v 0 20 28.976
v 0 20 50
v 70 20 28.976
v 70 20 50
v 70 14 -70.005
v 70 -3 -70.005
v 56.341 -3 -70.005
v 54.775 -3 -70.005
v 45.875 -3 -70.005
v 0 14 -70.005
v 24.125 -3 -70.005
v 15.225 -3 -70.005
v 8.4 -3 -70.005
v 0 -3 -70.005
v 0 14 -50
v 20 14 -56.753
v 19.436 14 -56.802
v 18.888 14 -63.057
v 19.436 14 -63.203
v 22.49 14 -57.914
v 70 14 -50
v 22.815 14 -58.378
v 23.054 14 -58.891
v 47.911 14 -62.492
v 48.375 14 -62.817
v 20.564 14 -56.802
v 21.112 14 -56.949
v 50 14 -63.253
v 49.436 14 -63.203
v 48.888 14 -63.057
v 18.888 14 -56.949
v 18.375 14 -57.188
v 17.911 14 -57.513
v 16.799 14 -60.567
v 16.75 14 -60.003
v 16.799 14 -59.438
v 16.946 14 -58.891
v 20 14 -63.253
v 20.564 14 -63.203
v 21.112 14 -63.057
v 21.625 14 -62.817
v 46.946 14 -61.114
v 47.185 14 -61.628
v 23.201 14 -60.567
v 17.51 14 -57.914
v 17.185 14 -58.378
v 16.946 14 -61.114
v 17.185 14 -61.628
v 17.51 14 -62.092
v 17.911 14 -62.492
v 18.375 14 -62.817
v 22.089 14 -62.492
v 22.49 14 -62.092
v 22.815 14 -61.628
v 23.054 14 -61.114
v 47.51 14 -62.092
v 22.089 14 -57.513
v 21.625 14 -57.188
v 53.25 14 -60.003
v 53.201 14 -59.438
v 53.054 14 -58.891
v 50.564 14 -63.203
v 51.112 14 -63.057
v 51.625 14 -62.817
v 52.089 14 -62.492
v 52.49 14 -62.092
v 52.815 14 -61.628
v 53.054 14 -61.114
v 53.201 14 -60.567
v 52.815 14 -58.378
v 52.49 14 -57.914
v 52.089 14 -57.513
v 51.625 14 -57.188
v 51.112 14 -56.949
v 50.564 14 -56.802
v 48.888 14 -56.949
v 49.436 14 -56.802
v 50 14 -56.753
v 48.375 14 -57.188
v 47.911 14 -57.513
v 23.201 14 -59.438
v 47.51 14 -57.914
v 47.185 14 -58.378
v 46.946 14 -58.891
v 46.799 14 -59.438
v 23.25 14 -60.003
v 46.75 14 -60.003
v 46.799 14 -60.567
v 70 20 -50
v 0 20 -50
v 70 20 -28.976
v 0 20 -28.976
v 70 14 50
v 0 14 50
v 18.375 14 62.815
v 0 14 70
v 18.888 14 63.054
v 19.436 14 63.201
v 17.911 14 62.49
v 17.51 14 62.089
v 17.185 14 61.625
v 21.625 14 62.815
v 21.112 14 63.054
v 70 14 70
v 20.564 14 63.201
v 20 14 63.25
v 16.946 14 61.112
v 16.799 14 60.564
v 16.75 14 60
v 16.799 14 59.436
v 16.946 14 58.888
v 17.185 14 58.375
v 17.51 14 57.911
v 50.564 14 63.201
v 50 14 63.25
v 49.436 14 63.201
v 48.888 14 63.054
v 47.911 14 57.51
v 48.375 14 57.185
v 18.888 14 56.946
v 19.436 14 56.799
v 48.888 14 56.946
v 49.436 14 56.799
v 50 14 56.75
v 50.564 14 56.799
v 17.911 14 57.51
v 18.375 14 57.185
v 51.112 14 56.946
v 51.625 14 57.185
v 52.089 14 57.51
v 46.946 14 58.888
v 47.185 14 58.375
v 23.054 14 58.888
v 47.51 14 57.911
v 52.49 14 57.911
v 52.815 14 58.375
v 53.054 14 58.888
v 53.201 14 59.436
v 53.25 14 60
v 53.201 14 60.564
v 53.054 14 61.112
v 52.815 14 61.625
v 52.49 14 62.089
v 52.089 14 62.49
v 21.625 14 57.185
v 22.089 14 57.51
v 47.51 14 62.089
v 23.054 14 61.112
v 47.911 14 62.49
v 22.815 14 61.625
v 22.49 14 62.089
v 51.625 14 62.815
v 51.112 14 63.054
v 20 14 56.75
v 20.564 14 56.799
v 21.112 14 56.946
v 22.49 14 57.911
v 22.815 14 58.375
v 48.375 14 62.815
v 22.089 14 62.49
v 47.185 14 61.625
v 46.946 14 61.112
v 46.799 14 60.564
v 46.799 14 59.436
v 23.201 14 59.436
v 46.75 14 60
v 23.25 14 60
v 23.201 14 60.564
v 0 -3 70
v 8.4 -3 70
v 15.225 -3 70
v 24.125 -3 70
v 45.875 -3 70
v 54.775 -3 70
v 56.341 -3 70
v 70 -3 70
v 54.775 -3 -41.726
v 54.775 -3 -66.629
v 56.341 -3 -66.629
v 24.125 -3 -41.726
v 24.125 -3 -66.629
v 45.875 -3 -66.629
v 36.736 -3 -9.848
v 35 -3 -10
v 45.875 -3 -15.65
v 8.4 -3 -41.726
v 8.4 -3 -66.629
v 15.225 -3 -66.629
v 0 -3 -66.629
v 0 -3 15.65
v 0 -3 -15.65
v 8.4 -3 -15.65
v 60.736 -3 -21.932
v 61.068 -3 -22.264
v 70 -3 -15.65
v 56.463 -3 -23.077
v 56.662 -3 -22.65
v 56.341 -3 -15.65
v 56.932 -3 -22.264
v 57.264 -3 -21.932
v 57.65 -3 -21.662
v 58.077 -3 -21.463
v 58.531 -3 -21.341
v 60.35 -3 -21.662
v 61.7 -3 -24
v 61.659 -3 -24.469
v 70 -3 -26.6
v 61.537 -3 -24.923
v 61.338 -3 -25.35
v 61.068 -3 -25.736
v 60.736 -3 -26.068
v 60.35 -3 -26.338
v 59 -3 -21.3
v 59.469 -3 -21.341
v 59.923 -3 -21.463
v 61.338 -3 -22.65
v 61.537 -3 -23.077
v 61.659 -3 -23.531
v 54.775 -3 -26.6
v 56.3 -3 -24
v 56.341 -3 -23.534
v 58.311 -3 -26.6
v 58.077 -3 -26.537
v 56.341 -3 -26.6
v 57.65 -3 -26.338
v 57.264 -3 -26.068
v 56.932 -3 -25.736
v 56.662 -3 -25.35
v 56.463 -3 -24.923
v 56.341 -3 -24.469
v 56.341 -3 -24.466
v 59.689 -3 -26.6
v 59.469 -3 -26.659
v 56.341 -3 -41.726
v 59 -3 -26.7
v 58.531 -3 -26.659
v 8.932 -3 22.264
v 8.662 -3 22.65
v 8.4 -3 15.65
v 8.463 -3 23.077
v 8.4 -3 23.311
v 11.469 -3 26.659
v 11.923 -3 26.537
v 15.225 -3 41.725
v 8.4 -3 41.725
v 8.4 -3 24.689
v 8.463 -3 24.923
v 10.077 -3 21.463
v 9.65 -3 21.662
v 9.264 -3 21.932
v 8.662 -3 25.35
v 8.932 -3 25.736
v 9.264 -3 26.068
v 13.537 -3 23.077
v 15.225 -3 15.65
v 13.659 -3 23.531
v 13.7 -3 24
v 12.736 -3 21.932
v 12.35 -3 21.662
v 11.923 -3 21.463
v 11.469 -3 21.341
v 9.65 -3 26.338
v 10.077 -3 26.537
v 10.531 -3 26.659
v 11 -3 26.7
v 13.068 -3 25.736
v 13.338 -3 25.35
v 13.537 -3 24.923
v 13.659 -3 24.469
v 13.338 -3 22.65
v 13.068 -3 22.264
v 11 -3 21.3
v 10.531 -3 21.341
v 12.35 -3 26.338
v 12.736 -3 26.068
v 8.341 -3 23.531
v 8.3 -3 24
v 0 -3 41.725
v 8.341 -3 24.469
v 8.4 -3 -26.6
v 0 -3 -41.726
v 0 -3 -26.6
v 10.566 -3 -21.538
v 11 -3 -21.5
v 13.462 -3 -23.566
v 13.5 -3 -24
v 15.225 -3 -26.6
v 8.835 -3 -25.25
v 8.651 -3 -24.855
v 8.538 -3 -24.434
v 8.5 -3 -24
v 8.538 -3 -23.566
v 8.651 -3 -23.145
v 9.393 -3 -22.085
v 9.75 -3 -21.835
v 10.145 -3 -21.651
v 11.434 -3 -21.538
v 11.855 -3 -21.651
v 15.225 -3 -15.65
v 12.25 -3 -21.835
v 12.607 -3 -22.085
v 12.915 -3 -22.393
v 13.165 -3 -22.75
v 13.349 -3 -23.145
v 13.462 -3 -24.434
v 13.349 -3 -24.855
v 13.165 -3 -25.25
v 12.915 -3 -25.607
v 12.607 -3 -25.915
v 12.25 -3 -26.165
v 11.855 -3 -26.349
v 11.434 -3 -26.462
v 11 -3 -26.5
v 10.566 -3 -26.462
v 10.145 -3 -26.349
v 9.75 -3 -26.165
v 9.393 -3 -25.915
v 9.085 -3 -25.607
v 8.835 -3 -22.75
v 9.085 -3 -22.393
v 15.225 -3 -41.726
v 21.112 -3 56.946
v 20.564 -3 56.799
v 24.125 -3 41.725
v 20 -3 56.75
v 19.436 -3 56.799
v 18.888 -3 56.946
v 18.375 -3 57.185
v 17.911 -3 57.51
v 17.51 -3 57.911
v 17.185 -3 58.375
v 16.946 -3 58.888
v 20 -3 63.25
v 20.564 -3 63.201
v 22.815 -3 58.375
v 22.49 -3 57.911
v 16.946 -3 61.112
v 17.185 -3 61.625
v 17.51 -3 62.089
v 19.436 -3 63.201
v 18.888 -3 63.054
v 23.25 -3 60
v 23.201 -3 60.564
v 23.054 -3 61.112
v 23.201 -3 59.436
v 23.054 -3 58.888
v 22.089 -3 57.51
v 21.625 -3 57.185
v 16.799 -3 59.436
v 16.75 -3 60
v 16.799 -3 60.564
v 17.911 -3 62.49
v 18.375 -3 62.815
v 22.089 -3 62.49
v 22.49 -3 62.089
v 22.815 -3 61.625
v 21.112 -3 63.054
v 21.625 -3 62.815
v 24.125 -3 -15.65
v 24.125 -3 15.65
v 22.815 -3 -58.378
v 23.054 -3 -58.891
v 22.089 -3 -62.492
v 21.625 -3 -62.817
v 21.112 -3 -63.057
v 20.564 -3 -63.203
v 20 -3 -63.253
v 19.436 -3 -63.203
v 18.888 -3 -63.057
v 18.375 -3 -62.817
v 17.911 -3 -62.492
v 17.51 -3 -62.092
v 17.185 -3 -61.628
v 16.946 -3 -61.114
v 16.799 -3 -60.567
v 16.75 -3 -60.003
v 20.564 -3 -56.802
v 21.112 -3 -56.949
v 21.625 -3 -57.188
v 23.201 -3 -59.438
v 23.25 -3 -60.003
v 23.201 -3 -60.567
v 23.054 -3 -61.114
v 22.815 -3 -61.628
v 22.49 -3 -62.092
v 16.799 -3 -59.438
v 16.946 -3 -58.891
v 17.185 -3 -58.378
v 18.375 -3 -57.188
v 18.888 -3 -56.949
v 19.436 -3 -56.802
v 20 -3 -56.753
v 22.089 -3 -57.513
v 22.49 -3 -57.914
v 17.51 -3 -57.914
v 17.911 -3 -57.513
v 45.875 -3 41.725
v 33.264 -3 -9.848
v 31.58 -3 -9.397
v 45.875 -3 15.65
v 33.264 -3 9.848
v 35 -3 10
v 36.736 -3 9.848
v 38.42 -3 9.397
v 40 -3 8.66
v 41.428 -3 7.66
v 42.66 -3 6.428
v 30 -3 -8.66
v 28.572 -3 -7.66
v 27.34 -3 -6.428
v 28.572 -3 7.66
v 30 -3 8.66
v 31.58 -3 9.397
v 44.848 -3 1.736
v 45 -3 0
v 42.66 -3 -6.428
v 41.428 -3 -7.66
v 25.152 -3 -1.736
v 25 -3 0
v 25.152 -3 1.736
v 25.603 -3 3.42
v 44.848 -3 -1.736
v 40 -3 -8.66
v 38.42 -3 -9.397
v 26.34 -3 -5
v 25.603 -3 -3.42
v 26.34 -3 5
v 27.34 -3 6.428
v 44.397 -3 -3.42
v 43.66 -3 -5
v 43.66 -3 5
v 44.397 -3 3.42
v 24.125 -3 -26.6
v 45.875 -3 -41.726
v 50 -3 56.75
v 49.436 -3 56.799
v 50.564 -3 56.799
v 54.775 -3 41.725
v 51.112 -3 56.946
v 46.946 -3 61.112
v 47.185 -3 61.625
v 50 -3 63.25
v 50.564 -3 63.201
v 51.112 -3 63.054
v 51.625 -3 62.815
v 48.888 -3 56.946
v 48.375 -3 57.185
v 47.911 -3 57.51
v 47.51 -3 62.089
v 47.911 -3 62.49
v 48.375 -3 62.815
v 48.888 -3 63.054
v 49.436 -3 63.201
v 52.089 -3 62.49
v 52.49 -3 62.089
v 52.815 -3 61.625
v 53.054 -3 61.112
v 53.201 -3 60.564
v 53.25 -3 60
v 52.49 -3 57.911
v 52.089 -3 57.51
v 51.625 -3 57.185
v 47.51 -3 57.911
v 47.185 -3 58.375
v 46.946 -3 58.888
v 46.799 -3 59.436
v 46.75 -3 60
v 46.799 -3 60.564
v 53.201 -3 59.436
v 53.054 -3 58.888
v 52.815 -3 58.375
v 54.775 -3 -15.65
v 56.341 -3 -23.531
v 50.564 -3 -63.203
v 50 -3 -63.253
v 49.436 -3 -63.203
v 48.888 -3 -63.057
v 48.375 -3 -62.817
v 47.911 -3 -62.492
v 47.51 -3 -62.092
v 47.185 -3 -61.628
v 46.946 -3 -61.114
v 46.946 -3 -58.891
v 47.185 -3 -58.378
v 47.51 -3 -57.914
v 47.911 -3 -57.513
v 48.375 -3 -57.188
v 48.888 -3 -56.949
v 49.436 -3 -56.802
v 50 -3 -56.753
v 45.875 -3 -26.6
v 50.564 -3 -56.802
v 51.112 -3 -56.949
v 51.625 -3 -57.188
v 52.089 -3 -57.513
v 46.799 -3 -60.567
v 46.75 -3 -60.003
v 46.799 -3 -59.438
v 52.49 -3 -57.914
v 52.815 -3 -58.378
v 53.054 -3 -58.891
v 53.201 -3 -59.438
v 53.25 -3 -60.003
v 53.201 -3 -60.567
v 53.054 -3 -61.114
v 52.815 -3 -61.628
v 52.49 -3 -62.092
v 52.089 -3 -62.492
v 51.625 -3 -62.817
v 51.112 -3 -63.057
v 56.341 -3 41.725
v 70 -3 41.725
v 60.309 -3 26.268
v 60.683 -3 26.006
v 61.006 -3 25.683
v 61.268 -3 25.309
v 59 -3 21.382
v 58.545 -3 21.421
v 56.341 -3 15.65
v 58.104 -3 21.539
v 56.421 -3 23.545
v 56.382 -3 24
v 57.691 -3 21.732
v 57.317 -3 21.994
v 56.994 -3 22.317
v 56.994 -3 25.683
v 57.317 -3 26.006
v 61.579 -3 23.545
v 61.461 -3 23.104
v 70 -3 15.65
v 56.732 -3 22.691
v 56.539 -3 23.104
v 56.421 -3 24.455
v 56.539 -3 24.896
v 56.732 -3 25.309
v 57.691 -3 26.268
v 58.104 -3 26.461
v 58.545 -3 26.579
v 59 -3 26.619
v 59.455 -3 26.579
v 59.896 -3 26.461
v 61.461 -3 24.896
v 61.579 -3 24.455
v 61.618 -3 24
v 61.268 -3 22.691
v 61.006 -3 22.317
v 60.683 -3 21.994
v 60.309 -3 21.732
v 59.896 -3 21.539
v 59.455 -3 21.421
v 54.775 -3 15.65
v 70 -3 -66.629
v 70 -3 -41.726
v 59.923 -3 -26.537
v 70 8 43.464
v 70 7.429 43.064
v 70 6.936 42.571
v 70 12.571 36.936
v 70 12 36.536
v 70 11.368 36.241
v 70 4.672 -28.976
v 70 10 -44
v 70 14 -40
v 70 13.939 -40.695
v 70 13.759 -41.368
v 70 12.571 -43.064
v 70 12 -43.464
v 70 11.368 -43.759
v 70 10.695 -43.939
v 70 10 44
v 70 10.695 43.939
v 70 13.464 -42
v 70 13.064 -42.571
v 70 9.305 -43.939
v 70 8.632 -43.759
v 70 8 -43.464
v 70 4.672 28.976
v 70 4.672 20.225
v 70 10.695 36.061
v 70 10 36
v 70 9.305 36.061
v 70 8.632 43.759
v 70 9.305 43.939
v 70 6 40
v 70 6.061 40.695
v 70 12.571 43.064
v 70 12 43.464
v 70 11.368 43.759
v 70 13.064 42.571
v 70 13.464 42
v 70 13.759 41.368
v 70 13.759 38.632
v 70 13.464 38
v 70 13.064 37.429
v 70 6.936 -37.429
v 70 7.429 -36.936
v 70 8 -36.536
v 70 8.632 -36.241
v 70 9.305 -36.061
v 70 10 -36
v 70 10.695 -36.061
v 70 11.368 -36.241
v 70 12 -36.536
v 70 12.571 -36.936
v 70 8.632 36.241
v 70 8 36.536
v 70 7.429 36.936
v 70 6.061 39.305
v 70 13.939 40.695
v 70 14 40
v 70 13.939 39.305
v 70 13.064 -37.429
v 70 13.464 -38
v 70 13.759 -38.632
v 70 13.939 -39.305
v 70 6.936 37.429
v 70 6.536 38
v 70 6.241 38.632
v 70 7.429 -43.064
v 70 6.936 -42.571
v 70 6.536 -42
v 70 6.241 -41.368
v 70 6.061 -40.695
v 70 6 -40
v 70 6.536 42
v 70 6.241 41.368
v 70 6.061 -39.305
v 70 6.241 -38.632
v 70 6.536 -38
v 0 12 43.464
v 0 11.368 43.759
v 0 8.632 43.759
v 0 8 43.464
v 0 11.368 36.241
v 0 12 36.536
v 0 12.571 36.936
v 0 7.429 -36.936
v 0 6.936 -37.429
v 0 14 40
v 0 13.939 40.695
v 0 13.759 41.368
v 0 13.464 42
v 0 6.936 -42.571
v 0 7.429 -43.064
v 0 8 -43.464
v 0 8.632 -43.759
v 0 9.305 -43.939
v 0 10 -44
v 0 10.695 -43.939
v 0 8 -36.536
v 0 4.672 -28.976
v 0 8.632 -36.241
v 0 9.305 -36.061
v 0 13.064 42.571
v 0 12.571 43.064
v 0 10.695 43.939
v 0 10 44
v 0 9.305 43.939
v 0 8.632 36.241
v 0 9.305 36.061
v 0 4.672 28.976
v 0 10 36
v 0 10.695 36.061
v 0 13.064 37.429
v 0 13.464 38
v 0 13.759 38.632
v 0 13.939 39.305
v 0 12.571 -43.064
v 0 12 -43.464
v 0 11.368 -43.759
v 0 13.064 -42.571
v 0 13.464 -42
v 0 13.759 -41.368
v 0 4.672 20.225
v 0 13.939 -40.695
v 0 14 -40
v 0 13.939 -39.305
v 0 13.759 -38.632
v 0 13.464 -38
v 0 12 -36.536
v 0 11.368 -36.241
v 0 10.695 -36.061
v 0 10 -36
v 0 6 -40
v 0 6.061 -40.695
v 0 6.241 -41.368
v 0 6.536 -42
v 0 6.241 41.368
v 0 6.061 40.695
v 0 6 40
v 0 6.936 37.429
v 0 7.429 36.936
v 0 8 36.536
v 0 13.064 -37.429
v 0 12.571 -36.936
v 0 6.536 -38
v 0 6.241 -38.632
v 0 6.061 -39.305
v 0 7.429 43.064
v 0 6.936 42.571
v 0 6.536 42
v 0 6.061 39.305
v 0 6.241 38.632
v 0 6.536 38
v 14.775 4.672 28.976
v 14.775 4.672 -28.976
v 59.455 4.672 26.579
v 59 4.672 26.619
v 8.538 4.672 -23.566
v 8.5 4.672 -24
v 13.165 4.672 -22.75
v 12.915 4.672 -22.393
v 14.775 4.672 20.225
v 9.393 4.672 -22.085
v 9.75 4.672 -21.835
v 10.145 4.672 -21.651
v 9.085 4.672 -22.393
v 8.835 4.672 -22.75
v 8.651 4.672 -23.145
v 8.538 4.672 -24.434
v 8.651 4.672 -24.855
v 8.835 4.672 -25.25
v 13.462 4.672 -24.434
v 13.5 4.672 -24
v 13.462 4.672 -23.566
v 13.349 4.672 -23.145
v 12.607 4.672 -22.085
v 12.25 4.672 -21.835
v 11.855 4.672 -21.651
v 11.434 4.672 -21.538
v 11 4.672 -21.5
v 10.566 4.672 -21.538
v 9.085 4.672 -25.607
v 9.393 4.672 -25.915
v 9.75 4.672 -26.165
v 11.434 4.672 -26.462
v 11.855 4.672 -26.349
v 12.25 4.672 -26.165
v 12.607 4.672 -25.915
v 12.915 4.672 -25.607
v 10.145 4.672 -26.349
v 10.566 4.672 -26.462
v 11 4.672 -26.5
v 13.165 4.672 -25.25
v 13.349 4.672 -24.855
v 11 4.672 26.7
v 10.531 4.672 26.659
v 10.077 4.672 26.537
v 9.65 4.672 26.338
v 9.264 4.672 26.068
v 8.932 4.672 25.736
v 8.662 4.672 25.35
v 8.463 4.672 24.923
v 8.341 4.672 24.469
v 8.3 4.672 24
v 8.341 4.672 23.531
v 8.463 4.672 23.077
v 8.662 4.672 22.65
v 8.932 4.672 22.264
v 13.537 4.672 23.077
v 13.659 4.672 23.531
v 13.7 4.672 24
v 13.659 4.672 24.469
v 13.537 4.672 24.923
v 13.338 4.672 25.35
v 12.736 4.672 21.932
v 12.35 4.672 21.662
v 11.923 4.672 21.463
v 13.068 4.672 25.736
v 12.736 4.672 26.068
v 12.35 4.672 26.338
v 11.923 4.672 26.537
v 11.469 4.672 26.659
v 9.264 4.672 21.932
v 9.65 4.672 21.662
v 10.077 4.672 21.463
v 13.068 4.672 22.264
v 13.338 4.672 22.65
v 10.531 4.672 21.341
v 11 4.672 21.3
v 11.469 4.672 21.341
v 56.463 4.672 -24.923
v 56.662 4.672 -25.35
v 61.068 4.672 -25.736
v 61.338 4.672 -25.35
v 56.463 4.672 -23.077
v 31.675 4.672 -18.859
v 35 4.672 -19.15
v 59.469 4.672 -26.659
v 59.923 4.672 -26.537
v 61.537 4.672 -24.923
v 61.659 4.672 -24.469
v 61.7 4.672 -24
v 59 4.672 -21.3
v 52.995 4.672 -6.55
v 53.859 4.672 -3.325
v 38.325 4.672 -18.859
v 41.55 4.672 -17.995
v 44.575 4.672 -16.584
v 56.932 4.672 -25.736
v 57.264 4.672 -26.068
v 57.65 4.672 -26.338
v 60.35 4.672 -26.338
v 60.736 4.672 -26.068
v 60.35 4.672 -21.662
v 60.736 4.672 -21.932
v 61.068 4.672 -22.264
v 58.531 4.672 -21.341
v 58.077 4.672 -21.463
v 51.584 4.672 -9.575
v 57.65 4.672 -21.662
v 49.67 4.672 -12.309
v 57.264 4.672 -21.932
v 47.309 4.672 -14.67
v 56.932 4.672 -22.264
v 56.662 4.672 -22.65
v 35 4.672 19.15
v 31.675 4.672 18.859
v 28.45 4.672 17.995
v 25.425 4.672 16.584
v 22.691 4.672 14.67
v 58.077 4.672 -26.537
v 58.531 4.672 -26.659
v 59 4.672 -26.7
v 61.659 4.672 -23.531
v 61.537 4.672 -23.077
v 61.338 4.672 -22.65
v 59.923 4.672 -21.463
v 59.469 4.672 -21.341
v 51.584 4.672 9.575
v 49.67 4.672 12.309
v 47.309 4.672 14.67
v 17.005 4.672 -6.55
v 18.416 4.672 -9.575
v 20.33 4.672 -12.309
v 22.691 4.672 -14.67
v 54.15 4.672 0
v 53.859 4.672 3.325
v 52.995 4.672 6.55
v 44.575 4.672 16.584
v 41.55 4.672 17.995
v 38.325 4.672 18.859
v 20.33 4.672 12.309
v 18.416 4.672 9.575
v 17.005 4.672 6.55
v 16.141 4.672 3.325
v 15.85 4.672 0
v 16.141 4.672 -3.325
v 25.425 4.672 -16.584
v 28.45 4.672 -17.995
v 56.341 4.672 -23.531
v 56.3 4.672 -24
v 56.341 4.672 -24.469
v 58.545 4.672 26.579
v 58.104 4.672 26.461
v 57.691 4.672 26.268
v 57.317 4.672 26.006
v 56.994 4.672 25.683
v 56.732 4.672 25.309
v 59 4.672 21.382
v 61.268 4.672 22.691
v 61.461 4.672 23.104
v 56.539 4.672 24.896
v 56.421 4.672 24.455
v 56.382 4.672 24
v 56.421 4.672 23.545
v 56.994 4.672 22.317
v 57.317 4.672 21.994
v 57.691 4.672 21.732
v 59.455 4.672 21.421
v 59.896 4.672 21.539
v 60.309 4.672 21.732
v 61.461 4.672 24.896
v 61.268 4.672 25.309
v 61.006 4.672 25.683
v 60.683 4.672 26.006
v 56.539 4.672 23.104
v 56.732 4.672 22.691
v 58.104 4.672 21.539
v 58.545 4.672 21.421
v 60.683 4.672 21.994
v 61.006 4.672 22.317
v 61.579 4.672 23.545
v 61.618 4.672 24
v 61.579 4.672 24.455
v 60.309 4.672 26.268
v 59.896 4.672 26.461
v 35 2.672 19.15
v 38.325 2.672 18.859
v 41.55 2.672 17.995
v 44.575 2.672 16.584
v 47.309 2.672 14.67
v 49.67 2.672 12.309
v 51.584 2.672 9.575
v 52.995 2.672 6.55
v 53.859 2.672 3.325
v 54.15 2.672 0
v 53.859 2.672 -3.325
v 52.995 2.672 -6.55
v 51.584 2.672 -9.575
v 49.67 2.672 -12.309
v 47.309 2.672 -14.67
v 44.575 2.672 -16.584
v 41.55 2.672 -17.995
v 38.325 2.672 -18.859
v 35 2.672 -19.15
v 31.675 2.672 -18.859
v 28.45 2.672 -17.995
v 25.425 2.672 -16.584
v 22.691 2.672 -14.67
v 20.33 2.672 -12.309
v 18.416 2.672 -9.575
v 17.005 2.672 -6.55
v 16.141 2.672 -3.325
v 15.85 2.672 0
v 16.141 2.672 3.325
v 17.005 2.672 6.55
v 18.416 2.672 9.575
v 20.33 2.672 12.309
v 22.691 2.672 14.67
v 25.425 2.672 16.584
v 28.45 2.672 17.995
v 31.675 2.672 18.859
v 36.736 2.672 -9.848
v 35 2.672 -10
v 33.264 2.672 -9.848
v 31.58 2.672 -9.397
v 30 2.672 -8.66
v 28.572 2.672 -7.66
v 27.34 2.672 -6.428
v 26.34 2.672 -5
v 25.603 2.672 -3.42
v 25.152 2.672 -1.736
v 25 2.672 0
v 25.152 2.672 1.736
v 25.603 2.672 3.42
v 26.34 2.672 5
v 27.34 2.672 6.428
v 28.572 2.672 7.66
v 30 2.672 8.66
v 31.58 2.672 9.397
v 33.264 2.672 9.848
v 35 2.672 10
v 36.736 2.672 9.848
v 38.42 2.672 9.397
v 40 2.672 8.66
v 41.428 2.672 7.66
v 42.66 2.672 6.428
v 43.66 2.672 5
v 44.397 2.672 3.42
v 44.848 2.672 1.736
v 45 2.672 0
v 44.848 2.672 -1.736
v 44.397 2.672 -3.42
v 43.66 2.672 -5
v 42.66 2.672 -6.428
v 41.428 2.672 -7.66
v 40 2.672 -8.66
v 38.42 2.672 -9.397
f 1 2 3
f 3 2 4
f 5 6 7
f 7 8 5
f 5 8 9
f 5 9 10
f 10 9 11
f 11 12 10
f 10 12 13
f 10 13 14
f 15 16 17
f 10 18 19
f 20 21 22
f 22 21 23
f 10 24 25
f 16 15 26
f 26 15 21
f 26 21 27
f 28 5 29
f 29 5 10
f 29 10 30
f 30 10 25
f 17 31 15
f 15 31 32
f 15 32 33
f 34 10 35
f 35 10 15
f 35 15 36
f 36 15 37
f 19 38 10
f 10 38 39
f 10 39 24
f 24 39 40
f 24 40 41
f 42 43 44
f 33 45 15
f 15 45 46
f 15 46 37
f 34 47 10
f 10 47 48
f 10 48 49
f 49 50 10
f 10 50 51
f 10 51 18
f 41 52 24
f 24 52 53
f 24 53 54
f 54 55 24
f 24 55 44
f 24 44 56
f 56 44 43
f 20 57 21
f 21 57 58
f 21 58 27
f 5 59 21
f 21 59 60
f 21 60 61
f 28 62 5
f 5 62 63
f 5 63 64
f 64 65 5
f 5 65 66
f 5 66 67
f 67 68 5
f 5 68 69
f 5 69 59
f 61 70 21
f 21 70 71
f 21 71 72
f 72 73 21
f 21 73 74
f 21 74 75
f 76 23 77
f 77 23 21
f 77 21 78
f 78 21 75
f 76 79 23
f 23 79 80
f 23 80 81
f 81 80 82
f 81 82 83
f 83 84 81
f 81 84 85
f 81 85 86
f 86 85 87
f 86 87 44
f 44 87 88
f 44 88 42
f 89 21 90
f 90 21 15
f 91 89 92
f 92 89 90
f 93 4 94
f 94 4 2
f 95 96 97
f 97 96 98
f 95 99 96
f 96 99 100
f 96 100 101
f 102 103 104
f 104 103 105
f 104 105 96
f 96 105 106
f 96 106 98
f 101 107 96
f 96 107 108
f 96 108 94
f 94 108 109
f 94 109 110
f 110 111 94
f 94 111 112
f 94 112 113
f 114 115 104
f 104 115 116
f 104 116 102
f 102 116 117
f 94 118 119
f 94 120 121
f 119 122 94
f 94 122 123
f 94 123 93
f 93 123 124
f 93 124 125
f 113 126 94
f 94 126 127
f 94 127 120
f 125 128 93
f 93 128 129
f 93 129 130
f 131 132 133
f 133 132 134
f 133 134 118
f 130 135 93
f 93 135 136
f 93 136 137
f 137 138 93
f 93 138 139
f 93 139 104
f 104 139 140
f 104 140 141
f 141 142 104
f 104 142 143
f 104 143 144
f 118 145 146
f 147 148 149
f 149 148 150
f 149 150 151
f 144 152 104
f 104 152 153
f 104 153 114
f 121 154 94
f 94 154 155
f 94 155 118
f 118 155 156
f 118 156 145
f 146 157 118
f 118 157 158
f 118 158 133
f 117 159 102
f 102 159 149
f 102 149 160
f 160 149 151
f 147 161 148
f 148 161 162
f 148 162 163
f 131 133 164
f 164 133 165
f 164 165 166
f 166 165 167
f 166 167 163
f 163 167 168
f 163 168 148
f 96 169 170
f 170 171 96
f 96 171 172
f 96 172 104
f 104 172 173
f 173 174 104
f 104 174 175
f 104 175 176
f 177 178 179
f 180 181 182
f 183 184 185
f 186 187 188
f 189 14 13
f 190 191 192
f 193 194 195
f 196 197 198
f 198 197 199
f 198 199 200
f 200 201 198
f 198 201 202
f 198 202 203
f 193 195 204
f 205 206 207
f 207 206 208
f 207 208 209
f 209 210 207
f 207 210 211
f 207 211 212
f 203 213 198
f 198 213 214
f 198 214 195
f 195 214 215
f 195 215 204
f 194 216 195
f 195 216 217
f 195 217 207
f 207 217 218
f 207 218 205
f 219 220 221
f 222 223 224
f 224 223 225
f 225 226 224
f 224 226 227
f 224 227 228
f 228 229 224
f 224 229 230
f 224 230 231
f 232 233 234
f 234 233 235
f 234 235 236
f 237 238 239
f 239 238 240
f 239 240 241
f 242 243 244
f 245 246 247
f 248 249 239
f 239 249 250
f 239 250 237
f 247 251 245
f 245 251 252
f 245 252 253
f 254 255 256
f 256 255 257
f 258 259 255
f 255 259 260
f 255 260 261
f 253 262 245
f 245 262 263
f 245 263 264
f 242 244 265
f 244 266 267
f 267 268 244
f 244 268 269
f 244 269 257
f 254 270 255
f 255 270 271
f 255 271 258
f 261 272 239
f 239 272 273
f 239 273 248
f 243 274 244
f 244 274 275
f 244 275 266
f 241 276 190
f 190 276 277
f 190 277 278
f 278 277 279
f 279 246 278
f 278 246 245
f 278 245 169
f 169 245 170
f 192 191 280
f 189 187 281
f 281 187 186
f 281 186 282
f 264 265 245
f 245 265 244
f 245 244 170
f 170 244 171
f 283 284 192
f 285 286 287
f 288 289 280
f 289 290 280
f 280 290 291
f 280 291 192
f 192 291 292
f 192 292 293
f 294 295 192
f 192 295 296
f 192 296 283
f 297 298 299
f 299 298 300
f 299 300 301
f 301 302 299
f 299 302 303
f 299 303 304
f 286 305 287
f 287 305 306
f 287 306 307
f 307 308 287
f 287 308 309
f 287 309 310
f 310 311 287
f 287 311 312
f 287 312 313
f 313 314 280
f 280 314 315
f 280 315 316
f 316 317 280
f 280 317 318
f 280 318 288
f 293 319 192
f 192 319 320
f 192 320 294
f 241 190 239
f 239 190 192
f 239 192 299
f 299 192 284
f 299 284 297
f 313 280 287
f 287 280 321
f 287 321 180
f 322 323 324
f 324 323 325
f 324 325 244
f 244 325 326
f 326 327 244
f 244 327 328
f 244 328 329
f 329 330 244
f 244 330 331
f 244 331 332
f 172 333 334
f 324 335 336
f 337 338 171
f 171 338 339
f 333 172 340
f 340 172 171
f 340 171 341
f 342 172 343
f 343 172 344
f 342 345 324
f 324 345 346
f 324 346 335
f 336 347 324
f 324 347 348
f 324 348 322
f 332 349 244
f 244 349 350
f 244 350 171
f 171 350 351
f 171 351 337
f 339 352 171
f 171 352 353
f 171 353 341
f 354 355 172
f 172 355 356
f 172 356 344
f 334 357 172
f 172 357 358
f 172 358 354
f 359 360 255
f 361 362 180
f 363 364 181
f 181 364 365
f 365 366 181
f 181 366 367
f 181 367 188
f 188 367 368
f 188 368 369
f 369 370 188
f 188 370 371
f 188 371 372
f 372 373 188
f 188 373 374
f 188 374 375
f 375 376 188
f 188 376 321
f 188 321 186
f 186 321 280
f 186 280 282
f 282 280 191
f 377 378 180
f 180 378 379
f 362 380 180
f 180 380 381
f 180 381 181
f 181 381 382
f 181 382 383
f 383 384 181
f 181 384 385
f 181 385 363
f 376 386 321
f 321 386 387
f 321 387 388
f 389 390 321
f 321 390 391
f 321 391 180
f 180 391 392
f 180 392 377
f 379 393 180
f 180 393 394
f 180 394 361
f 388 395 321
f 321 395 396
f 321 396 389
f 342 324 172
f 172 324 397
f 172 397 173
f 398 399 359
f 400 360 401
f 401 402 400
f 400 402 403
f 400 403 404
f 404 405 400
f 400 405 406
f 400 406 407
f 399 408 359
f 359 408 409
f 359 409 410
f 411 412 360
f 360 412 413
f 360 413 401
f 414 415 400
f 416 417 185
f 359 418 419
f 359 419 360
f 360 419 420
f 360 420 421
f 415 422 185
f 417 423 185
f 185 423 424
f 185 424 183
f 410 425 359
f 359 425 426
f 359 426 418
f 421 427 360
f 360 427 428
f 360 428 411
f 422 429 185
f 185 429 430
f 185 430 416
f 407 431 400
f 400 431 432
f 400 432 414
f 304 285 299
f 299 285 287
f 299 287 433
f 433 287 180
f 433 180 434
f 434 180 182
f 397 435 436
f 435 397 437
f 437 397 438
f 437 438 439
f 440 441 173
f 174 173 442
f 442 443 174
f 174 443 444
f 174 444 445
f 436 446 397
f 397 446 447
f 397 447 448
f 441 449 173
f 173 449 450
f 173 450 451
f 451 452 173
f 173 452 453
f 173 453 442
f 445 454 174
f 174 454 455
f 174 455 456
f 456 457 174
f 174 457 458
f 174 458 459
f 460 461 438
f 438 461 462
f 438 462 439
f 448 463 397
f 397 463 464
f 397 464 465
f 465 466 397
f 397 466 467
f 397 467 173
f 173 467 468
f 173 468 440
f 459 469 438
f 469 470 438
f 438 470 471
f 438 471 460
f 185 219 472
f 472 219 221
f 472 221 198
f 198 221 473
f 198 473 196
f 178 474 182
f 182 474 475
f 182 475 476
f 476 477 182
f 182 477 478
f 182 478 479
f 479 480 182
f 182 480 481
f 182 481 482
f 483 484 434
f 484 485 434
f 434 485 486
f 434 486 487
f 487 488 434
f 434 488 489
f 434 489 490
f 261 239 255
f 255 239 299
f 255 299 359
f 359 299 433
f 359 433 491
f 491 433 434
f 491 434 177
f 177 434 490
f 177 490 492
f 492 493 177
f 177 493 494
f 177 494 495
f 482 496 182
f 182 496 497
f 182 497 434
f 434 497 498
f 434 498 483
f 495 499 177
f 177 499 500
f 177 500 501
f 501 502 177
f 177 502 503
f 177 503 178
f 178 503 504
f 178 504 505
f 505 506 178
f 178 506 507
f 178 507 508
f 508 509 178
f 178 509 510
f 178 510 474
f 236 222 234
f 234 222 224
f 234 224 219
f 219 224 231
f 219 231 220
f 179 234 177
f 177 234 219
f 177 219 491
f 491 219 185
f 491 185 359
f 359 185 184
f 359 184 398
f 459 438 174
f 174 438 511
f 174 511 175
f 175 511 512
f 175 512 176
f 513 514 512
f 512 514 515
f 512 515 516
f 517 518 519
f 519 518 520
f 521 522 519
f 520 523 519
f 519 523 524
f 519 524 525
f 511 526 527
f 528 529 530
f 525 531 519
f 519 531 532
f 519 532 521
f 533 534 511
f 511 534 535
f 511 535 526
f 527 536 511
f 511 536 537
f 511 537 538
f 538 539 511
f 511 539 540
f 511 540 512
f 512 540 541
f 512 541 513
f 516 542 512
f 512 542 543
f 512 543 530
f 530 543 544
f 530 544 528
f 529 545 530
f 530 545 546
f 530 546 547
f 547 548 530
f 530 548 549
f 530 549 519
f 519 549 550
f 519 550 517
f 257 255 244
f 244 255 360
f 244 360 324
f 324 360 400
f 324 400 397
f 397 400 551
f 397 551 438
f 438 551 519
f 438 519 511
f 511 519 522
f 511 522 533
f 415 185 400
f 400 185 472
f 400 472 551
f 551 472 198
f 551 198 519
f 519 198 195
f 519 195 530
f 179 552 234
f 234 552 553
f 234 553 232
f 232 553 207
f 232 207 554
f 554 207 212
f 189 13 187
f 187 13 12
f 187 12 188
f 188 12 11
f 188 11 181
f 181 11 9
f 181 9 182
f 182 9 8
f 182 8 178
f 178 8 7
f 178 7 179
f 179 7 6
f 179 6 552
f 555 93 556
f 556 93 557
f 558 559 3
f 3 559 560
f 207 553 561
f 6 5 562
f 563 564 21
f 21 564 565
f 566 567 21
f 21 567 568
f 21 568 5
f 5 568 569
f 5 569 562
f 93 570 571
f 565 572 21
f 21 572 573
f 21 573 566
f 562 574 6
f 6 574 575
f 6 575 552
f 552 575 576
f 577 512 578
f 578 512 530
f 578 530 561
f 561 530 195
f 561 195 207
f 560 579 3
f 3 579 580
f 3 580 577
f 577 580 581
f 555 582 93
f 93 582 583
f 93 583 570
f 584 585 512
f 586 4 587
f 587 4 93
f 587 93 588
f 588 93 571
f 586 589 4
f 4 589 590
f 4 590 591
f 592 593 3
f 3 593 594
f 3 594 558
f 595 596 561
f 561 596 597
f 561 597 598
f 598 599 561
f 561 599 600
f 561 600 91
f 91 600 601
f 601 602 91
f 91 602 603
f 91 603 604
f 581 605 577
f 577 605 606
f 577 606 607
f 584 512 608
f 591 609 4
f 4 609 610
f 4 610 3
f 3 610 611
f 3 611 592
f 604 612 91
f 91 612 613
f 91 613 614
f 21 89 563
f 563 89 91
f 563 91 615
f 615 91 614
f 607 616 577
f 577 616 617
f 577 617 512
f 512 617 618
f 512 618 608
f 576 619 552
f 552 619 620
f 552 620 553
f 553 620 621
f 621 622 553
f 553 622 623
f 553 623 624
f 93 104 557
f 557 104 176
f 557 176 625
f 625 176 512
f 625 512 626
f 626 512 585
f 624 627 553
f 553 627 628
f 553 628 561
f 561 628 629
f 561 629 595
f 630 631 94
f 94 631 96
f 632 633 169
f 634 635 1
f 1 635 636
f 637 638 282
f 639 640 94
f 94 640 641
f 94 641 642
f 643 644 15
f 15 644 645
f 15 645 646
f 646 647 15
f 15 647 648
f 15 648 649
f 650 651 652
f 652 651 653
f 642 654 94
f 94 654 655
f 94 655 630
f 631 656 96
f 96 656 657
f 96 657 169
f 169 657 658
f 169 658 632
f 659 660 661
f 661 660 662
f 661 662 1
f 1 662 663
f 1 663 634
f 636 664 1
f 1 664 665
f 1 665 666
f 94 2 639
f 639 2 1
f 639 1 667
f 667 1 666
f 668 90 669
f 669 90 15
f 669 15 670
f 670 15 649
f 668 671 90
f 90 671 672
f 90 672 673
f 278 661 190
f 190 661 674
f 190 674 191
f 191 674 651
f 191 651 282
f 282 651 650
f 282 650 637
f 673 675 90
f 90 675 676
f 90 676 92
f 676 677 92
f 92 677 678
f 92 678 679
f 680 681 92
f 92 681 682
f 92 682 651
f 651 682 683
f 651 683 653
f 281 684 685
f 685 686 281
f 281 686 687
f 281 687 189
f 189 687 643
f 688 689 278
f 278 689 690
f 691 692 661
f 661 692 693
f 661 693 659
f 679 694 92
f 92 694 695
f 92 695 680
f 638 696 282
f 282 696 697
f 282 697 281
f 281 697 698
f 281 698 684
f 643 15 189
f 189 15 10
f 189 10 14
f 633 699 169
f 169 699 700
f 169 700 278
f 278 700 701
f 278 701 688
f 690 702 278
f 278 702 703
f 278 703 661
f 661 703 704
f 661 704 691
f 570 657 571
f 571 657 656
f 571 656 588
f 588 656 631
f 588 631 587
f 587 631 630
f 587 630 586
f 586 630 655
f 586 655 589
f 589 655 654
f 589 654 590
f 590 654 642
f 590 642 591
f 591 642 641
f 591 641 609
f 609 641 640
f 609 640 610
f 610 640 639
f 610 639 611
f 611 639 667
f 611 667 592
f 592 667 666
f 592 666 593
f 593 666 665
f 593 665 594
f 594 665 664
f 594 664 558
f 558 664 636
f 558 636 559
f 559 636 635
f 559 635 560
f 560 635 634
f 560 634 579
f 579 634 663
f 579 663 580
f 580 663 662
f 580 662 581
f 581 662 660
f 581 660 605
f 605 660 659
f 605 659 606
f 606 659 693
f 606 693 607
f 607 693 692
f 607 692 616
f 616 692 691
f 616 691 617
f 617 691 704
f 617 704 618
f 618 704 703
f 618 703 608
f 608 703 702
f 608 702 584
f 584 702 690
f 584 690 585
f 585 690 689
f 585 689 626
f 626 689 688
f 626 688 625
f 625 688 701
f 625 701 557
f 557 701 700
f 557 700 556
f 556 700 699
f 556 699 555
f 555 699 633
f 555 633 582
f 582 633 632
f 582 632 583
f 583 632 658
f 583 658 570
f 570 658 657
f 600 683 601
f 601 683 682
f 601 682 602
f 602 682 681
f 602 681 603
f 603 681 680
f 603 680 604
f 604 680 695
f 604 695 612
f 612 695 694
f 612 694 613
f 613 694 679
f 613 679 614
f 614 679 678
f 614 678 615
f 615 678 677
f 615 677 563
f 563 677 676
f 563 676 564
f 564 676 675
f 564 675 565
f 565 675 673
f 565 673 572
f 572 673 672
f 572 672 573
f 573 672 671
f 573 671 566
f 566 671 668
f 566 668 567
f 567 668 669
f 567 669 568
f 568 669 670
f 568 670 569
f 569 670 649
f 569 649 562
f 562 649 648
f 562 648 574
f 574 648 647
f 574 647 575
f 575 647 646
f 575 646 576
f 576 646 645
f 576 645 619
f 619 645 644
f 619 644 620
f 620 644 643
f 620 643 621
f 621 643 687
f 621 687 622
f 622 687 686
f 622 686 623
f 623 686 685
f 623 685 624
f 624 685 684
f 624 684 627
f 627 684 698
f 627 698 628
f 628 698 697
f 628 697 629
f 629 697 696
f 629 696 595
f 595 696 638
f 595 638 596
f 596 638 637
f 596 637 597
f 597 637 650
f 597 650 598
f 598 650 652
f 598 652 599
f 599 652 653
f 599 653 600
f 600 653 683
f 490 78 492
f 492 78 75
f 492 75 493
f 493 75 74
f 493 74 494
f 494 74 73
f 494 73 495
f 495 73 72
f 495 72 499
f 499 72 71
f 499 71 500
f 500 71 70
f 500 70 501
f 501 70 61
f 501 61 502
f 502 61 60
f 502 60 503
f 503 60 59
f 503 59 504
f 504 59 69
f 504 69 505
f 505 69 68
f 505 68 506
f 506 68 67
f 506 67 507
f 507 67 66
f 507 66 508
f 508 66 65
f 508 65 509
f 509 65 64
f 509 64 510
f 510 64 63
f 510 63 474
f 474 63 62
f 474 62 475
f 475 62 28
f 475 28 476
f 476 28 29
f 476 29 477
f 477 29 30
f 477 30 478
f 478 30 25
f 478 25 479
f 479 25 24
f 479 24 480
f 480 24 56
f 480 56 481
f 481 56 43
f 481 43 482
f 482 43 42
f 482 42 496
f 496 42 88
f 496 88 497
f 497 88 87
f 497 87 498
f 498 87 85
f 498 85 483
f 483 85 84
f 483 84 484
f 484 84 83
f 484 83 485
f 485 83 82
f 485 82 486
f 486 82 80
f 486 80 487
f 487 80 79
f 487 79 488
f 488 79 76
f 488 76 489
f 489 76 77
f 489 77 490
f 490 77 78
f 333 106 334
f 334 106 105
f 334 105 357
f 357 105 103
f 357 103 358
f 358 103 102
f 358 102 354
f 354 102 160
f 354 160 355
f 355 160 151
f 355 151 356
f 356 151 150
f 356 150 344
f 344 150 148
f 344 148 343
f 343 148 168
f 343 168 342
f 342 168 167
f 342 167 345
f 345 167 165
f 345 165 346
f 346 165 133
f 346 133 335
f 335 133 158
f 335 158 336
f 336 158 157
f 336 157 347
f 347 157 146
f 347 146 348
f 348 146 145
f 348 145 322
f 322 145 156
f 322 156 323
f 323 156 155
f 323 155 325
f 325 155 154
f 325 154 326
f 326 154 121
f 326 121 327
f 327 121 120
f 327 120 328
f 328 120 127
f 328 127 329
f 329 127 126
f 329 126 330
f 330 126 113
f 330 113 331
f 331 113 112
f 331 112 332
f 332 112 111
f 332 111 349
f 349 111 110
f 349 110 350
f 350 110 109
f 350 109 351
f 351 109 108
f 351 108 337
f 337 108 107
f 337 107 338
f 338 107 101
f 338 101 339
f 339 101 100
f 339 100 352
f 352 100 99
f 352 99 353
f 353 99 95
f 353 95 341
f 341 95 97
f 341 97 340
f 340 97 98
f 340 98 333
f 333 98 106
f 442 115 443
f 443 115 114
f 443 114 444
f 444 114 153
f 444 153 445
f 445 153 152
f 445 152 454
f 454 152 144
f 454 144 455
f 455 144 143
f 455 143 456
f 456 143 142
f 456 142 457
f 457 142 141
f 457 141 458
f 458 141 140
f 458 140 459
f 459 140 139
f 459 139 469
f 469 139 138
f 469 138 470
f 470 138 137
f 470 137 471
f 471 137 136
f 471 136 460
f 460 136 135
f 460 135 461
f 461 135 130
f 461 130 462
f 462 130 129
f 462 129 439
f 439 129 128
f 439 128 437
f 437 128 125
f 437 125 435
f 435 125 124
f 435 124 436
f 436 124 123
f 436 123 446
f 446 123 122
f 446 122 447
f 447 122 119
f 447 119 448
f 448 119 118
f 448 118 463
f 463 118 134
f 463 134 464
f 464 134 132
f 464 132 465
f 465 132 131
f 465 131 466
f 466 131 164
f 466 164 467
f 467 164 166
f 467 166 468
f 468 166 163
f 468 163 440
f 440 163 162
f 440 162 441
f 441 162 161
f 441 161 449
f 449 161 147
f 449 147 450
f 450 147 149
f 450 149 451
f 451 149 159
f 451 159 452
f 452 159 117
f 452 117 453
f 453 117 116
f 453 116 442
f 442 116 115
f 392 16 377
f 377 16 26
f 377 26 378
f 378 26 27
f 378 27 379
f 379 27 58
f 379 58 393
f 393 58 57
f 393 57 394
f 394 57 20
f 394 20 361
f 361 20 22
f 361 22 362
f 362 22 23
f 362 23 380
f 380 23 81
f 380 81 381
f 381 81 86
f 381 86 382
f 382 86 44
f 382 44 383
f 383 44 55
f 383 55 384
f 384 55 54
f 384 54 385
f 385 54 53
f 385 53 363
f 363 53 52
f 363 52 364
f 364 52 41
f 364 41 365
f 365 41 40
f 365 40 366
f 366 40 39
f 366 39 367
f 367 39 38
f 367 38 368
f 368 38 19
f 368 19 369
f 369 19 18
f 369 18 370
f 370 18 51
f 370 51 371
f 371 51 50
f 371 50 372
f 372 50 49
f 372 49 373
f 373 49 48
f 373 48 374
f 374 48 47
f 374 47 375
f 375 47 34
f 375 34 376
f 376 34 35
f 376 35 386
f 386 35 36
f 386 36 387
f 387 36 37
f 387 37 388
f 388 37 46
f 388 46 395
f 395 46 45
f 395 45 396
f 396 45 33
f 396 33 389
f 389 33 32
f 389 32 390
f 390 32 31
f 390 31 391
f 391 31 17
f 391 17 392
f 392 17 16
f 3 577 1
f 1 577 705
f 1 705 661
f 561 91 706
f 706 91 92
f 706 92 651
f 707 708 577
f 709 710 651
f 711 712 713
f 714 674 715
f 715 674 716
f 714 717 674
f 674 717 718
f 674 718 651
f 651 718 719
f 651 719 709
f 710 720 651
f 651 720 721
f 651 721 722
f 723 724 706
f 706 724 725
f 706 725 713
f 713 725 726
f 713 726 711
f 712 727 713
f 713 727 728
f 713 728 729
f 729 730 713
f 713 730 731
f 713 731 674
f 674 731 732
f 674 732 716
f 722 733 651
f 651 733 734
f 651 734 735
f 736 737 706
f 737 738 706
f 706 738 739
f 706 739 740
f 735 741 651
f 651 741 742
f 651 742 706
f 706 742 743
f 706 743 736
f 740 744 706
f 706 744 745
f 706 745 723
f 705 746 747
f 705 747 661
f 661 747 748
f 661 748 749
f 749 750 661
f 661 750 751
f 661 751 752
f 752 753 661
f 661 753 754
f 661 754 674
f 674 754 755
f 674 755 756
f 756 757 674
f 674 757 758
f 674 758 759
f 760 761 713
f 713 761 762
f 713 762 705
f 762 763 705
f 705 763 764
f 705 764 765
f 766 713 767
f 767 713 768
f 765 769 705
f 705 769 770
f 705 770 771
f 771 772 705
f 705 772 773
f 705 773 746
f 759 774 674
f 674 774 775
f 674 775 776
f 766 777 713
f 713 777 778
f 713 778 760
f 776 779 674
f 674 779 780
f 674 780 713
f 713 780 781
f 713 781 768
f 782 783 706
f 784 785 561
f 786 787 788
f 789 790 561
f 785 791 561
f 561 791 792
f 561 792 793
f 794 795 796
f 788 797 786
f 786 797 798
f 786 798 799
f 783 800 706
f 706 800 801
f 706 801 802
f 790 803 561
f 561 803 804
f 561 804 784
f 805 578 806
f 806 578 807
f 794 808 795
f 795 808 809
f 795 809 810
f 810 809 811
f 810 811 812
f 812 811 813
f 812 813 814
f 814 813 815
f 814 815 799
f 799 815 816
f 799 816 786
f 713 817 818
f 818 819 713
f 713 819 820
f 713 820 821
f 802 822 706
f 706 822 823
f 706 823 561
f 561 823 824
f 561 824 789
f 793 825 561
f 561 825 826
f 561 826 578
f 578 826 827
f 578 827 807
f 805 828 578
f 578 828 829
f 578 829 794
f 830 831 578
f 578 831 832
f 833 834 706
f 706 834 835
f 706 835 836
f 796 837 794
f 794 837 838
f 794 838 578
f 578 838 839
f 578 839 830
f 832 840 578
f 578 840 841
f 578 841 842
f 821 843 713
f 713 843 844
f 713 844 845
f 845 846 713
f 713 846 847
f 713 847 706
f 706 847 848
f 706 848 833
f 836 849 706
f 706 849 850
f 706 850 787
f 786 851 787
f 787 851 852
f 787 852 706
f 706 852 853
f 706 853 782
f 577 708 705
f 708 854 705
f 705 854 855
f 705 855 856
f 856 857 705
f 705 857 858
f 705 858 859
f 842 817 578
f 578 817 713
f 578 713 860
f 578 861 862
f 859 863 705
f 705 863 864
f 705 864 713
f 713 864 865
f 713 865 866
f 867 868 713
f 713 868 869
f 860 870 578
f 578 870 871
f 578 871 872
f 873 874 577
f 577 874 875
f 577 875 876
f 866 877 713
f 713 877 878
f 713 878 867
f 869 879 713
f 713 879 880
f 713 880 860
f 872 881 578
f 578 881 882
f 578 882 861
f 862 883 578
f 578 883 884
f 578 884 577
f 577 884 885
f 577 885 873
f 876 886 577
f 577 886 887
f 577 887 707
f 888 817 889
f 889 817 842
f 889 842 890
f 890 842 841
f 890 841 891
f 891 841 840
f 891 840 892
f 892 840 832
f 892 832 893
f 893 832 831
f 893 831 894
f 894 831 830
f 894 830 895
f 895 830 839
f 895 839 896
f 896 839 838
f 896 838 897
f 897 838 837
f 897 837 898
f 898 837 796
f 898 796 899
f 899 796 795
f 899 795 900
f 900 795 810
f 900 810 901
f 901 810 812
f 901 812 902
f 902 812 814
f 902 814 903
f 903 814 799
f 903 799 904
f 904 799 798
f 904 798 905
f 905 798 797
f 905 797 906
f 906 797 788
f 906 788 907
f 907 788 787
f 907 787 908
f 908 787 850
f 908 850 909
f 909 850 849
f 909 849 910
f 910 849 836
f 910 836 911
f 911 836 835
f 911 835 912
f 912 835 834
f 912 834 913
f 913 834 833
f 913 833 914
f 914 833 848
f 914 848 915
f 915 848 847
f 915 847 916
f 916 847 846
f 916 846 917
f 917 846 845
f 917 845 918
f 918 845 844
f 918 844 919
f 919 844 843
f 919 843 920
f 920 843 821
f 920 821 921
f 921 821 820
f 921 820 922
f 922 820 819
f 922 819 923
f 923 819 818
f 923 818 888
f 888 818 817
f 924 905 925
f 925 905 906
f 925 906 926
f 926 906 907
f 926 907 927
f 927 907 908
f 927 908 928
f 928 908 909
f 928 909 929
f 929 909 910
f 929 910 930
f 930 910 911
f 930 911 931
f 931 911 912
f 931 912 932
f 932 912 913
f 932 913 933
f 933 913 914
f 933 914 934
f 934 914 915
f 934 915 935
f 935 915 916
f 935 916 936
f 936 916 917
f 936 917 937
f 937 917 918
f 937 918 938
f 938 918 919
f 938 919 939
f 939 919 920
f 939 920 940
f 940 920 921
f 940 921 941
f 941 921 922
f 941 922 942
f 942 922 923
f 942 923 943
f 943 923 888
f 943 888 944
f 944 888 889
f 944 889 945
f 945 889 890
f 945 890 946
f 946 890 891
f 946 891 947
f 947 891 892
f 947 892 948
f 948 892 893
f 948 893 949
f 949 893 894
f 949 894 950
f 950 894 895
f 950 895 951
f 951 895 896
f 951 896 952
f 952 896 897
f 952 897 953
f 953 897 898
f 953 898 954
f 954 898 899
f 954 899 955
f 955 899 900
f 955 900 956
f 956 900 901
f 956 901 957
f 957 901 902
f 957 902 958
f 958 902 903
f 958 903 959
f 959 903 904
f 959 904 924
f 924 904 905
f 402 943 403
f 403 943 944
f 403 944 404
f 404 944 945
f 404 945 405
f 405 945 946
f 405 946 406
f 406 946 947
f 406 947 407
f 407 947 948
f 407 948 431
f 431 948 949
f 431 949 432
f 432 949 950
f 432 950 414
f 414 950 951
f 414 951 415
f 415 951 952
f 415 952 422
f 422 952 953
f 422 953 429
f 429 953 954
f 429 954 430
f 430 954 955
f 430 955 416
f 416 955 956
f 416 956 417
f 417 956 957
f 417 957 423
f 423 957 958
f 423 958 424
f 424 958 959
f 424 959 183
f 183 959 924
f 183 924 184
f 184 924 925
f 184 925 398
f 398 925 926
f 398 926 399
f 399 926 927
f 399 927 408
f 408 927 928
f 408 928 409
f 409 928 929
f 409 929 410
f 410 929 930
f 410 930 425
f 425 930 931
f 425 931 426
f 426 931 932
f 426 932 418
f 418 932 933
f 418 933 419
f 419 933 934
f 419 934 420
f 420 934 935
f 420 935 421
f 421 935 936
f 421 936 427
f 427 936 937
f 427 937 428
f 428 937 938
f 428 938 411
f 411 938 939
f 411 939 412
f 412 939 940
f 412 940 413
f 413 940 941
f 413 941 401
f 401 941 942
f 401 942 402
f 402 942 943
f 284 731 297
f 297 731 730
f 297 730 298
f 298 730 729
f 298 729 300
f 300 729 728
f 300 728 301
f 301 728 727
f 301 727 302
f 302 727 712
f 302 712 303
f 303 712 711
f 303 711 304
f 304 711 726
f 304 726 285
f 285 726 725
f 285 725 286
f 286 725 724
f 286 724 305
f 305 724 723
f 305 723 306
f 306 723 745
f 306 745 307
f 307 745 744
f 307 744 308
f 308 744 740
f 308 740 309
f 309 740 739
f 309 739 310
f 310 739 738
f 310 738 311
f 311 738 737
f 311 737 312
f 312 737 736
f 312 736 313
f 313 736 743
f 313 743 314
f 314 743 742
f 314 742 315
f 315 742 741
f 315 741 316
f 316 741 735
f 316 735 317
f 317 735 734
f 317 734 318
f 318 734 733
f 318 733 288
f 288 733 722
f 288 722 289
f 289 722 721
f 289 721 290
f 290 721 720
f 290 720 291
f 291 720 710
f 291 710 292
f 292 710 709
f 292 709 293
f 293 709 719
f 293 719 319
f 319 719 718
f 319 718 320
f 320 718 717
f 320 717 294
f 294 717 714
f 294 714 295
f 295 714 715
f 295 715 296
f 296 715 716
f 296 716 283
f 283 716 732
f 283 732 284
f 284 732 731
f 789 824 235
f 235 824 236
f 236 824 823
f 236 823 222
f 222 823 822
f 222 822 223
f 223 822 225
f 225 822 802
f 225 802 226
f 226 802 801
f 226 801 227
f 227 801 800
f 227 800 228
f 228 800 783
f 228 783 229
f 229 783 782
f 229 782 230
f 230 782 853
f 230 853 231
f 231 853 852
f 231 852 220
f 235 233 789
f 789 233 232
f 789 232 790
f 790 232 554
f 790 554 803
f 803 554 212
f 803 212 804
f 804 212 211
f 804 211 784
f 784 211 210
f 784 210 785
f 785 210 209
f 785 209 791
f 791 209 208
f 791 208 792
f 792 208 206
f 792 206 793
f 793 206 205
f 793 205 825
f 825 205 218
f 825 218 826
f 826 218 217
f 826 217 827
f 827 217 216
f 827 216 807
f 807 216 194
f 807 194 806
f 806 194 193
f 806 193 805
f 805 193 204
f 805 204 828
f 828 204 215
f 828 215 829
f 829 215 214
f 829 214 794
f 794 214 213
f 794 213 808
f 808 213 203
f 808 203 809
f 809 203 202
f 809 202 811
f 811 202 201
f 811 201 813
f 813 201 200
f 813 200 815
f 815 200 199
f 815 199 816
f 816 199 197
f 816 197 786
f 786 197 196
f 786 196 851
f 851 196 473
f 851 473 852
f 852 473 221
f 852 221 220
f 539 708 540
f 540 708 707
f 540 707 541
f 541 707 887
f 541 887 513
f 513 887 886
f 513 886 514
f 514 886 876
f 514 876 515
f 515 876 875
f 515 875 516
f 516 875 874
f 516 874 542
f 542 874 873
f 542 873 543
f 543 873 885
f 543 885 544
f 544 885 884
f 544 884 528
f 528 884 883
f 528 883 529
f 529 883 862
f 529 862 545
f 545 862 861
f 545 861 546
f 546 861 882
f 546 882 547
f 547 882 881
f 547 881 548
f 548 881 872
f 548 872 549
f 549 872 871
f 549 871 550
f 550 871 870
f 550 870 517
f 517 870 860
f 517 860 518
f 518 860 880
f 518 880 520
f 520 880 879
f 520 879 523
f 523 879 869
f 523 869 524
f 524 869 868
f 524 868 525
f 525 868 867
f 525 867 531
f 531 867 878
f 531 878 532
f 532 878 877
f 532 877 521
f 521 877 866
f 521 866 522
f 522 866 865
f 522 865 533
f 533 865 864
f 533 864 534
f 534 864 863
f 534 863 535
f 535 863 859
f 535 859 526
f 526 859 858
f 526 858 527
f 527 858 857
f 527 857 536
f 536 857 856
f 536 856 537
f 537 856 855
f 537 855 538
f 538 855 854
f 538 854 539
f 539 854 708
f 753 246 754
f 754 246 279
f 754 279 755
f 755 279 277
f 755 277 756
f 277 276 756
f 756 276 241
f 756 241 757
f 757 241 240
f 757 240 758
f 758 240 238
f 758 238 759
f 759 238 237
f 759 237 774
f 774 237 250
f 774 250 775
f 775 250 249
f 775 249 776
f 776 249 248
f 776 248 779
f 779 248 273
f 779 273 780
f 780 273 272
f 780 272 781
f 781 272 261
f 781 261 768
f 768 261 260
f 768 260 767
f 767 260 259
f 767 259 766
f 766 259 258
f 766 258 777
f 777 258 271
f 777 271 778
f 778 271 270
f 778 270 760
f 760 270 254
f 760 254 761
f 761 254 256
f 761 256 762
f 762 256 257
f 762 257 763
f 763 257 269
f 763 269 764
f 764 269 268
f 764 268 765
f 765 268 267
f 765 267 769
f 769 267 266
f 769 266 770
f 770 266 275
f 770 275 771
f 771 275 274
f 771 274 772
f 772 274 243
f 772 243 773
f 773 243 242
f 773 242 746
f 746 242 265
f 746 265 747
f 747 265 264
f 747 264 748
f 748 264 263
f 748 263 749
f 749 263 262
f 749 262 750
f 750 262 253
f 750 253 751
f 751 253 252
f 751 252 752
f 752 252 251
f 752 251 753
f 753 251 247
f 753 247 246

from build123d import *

# Parameters (mm, degrees)
BOSS_EXTRUDE1_DEPTH = 70
CUT_EXTRUDE1_REACH  = 72
SKETCH14_R          = 4
CUT_EXTRUDE2_REACH  = 19
SKETCH15_R          = 3.25
CUT_EXTRUDE3_REACH  = 72
SKETCH16_W          = 57.95105002
SKETCH16_H          = 16.678137539
SKETCH17_R          = 19.15
CUT_EXTRUDE4_DEPTH  = 2
CUT_EXTRUDE5_REACH  = 7.672
SKETCH18_R          = 10
CUT_EXTRUDE6_REACH  = 9.672
SKETCH19_R          = 2.5
SKETCH19_R_2        = 2.7
SKETCH19_R_3        = 2.618497629


with BuildPart() as part:
    # Sketch12 → Boss-Extrude1 (new body)
    with BuildSketch(Plane(origin=(0, 0, 0), x_dir=(0, 0, -1), z_dir=(1, 0, 0))):
        Polygon((70.005446089, -2.999997853), (-70, -2.999997853), (-70, 14.000002147), (-50, 14.000002147), (-50, 20.000002147), (50, 20.000002147), (50, 14.000002147), (70.005446089, 14.000002147), align=None)
    extrude(amount=BOSS_EXTRUDE1_DEPTH)

    # Sketch14 → Cut-Extrude1 (cut, up to next)
    with BuildSketch(Plane.ZY, mode=Mode.PRIVATE) as cut_extrude1_sk1:
        with Locations((-40, 10.000001073)):
            Circle(SKETCH14_R)
    cut_extrude1_tool1 = extrude(cut_extrude1_sk1.sketch, amount=-CUT_EXTRUDE1_REACH, mode=Mode.PRIVATE) & part.part
    add(cut_extrude1_tool1.solids().sort_by_distance((0, 10.000001, -40))[0], mode=Mode.SUBTRACT)
    # Sketch14 → Cut-Extrude1 (cut, up to next)
    with BuildSketch(Plane.ZY, mode=Mode.PRIVATE) as cut_extrude1_sk2:
        with Locations((40, 10.000001073)):
            Circle(SKETCH14_R)
    cut_extrude1_tool2 = extrude(cut_extrude1_sk2.sketch, amount=-CUT_EXTRUDE1_REACH, mode=Mode.PRIVATE) & part.part
    add(cut_extrude1_tool2.solids().sort_by_distance((0, 10.000001, 40))[0], mode=Mode.SUBTRACT)

    # Sketch15 → Cut-Extrude2 (cut, up to next)
    with BuildSketch(Plane(origin=(0, 14.000002147, 0), x_dir=(1, 0, 0), z_dir=(0, 1, 0)), mode=Mode.PRIVATE) as cut_extrude2_sk1:
        with Locations((50, 60.002723044)):
            Circle(SKETCH15_R)
    cut_extrude2_tool1 = extrude(cut_extrude2_sk1.sketch, amount=-CUT_EXTRUDE2_REACH, mode=Mode.PRIVATE) & part.part
    add(cut_extrude2_tool1.solids().sort_by_distance((50, 14.000002, -60.002723))[0], mode=Mode.SUBTRACT)
    # Sketch15 → Cut-Extrude2 (cut, up to next)
    with BuildSketch(Plane(origin=(0, 14.000002147, 0), x_dir=(1, 0, 0), z_dir=(0, 1, 0)), mode=Mode.PRIVATE) as cut_extrude2_sk2:
        with Locations((20, 60.002723044)):
            Circle(SKETCH15_R)
    cut_extrude2_tool2 = extrude(cut_extrude2_sk2.sketch, amount=-CUT_EXTRUDE2_REACH, mode=Mode.PRIVATE) & part.part
    add(cut_extrude2_tool2.solids().sort_by_distance((20, 14.000002, -60.002723))[0], mode=Mode.SUBTRACT)
    # Sketch15 → Cut-Extrude2 (cut, up to next)
    with BuildSketch(Plane(origin=(0, 14.000002147, 0), x_dir=(1, 0, 0), z_dir=(0, 1, 0)), mode=Mode.PRIVATE) as cut_extrude2_sk3:
        with Locations((50, -60)):
            Circle(SKETCH15_R)
    cut_extrude2_tool3 = extrude(cut_extrude2_sk3.sketch, amount=-CUT_EXTRUDE2_REACH, mode=Mode.PRIVATE) & part.part
    add(cut_extrude2_tool3.solids().sort_by_distance((50, 14.000002, 60))[0], mode=Mode.SUBTRACT)
    # Sketch15 → Cut-Extrude2 (cut, up to next)
    with BuildSketch(Plane(origin=(0, 14.000002147, 0), x_dir=(1, 0, 0), z_dir=(0, 1, 0)), mode=Mode.PRIVATE) as cut_extrude2_sk4:
        with Locations((20, -60)):
            Circle(SKETCH15_R)
    cut_extrude2_tool4 = extrude(cut_extrude2_sk4.sketch, amount=-CUT_EXTRUDE2_REACH, mode=Mode.PRIVATE) & part.part
    add(cut_extrude2_tool4.solids().sort_by_distance((20, 14.000002, 60))[0], mode=Mode.SUBTRACT)

    # Sketch16 → Cut-Extrude3 (cut, up to next)
    with BuildSketch(Plane.ZY, mode=Mode.PRIVATE) as cut_extrude3_sk1:
        with Locations((0, 13.011297134)):
            Rectangle(SKETCH16_W, SKETCH16_H)
    cut_extrude3_tool1 = extrude(cut_extrude3_sk1.sketch, amount=-CUT_EXTRUDE3_REACH, mode=Mode.PRIVATE) & part.part
    add(cut_extrude3_tool1.solids().sort_by_distance((0, 13.011297, 0))[0], mode=Mode.SUBTRACT)

    # Sketch17 → Cut-Extrude4 (cut)
    with BuildSketch(Plane(origin=(0, 4.672228364, 0), x_dir=(1, 0, 0), z_dir=(0, 1, 0))):
        with Locations((35, 0)):
            Circle(SKETCH17_R)
    extrude(amount=-CUT_EXTRUDE4_DEPTH, mode=Mode.SUBTRACT)

    # Sketch18 → Cut-Extrude5 (cut, up to next)
    with BuildSketch(Plane(origin=(0, 2.672228364, 0), x_dir=(1, 0, 0), z_dir=(0, 1, 0)), mode=Mode.PRIVATE) as cut_extrude5_sk1:
        with Locations((35, 0)):
            Circle(SKETCH18_R)
    cut_extrude5_tool1 = extrude(cut_extrude5_sk1.sketch, amount=-CUT_EXTRUDE5_REACH, mode=Mode.PRIVATE) & part.part
    add(cut_extrude5_tool1.solids().sort_by_distance((35, 2.672228, 0))[0], mode=Mode.SUBTRACT)

    # Sketch19 → Cut-Extrude6 (cut, up to next)
    with BuildSketch(Plane(origin=(0, 4.672228364, 0), x_dir=(1, 0, 0), z_dir=(0, 1, 0)), mode=Mode.PRIVATE) as cut_extrude6_sk1:
        with Locations((11, 24)):
            Circle(SKETCH19_R)
    cut_extrude6_tool1 = extrude(cut_extrude6_sk1.sketch, amount=-CUT_EXTRUDE6_REACH, mode=Mode.PRIVATE) & part.part
    add(cut_extrude6_tool1.solids().sort_by_distance((11, 4.672228, -24))[0], mode=Mode.SUBTRACT)
    # Sketch19 → Cut-Extrude6 (cut, up to next)
    with BuildSketch(Plane(origin=(0, 4.672228364, 0), x_dir=(1, 0, 0), z_dir=(0, 1, 0)), mode=Mode.PRIVATE) as cut_extrude6_sk2:
        with Locations((59, 24)):
            Circle(SKETCH19_R_2)
    cut_extrude6_tool2 = extrude(cut_extrude6_sk2.sketch, amount=-CUT_EXTRUDE6_REACH, mode=Mode.PRIVATE) & part.part
    add(cut_extrude6_tool2.solids().sort_by_distance((59, 4.672228, -24))[0], mode=Mode.SUBTRACT)
    # Sketch19 → Cut-Extrude6 (cut, up to next)
    with BuildSketch(Plane(origin=(0, 4.672228364, 0), x_dir=(1, 0, 0), z_dir=(0, 1, 0)), mode=Mode.PRIVATE) as cut_extrude6_sk3:
        with Locations((59, -24)):
            Circle(SKETCH19_R_3)
    cut_extrude6_tool3 = extrude(cut_extrude6_sk3.sketch, amount=-CUT_EXTRUDE6_REACH, mode=Mode.PRIVATE) & part.part
    add(cut_extrude6_tool3.solids().sort_by_distance((59, 4.672228, 24))[0], mode=Mode.SUBTRACT)
    # Sketch19 → Cut-Extrude6 (cut, up to next)
    with BuildSketch(Plane(origin=(0, 4.672228364, 0), x_dir=(1, 0, 0), z_dir=(0, 1, 0)), mode=Mode.PRIVATE) as cut_extrude6_sk4:
        with Locations((11, -24)):
            Circle(SKETCH19_R_2)
    cut_extrude6_tool4 = extrude(cut_extrude6_sk4.sketch, amount=-CUT_EXTRUDE6_REACH, mode=Mode.PRIVATE) & part.part
    add(cut_extrude6_tool4.solids().sort_by_distance((11, 4.672228, 24))[0], mode=Mode.SUBTRACT)


solid = part.part
